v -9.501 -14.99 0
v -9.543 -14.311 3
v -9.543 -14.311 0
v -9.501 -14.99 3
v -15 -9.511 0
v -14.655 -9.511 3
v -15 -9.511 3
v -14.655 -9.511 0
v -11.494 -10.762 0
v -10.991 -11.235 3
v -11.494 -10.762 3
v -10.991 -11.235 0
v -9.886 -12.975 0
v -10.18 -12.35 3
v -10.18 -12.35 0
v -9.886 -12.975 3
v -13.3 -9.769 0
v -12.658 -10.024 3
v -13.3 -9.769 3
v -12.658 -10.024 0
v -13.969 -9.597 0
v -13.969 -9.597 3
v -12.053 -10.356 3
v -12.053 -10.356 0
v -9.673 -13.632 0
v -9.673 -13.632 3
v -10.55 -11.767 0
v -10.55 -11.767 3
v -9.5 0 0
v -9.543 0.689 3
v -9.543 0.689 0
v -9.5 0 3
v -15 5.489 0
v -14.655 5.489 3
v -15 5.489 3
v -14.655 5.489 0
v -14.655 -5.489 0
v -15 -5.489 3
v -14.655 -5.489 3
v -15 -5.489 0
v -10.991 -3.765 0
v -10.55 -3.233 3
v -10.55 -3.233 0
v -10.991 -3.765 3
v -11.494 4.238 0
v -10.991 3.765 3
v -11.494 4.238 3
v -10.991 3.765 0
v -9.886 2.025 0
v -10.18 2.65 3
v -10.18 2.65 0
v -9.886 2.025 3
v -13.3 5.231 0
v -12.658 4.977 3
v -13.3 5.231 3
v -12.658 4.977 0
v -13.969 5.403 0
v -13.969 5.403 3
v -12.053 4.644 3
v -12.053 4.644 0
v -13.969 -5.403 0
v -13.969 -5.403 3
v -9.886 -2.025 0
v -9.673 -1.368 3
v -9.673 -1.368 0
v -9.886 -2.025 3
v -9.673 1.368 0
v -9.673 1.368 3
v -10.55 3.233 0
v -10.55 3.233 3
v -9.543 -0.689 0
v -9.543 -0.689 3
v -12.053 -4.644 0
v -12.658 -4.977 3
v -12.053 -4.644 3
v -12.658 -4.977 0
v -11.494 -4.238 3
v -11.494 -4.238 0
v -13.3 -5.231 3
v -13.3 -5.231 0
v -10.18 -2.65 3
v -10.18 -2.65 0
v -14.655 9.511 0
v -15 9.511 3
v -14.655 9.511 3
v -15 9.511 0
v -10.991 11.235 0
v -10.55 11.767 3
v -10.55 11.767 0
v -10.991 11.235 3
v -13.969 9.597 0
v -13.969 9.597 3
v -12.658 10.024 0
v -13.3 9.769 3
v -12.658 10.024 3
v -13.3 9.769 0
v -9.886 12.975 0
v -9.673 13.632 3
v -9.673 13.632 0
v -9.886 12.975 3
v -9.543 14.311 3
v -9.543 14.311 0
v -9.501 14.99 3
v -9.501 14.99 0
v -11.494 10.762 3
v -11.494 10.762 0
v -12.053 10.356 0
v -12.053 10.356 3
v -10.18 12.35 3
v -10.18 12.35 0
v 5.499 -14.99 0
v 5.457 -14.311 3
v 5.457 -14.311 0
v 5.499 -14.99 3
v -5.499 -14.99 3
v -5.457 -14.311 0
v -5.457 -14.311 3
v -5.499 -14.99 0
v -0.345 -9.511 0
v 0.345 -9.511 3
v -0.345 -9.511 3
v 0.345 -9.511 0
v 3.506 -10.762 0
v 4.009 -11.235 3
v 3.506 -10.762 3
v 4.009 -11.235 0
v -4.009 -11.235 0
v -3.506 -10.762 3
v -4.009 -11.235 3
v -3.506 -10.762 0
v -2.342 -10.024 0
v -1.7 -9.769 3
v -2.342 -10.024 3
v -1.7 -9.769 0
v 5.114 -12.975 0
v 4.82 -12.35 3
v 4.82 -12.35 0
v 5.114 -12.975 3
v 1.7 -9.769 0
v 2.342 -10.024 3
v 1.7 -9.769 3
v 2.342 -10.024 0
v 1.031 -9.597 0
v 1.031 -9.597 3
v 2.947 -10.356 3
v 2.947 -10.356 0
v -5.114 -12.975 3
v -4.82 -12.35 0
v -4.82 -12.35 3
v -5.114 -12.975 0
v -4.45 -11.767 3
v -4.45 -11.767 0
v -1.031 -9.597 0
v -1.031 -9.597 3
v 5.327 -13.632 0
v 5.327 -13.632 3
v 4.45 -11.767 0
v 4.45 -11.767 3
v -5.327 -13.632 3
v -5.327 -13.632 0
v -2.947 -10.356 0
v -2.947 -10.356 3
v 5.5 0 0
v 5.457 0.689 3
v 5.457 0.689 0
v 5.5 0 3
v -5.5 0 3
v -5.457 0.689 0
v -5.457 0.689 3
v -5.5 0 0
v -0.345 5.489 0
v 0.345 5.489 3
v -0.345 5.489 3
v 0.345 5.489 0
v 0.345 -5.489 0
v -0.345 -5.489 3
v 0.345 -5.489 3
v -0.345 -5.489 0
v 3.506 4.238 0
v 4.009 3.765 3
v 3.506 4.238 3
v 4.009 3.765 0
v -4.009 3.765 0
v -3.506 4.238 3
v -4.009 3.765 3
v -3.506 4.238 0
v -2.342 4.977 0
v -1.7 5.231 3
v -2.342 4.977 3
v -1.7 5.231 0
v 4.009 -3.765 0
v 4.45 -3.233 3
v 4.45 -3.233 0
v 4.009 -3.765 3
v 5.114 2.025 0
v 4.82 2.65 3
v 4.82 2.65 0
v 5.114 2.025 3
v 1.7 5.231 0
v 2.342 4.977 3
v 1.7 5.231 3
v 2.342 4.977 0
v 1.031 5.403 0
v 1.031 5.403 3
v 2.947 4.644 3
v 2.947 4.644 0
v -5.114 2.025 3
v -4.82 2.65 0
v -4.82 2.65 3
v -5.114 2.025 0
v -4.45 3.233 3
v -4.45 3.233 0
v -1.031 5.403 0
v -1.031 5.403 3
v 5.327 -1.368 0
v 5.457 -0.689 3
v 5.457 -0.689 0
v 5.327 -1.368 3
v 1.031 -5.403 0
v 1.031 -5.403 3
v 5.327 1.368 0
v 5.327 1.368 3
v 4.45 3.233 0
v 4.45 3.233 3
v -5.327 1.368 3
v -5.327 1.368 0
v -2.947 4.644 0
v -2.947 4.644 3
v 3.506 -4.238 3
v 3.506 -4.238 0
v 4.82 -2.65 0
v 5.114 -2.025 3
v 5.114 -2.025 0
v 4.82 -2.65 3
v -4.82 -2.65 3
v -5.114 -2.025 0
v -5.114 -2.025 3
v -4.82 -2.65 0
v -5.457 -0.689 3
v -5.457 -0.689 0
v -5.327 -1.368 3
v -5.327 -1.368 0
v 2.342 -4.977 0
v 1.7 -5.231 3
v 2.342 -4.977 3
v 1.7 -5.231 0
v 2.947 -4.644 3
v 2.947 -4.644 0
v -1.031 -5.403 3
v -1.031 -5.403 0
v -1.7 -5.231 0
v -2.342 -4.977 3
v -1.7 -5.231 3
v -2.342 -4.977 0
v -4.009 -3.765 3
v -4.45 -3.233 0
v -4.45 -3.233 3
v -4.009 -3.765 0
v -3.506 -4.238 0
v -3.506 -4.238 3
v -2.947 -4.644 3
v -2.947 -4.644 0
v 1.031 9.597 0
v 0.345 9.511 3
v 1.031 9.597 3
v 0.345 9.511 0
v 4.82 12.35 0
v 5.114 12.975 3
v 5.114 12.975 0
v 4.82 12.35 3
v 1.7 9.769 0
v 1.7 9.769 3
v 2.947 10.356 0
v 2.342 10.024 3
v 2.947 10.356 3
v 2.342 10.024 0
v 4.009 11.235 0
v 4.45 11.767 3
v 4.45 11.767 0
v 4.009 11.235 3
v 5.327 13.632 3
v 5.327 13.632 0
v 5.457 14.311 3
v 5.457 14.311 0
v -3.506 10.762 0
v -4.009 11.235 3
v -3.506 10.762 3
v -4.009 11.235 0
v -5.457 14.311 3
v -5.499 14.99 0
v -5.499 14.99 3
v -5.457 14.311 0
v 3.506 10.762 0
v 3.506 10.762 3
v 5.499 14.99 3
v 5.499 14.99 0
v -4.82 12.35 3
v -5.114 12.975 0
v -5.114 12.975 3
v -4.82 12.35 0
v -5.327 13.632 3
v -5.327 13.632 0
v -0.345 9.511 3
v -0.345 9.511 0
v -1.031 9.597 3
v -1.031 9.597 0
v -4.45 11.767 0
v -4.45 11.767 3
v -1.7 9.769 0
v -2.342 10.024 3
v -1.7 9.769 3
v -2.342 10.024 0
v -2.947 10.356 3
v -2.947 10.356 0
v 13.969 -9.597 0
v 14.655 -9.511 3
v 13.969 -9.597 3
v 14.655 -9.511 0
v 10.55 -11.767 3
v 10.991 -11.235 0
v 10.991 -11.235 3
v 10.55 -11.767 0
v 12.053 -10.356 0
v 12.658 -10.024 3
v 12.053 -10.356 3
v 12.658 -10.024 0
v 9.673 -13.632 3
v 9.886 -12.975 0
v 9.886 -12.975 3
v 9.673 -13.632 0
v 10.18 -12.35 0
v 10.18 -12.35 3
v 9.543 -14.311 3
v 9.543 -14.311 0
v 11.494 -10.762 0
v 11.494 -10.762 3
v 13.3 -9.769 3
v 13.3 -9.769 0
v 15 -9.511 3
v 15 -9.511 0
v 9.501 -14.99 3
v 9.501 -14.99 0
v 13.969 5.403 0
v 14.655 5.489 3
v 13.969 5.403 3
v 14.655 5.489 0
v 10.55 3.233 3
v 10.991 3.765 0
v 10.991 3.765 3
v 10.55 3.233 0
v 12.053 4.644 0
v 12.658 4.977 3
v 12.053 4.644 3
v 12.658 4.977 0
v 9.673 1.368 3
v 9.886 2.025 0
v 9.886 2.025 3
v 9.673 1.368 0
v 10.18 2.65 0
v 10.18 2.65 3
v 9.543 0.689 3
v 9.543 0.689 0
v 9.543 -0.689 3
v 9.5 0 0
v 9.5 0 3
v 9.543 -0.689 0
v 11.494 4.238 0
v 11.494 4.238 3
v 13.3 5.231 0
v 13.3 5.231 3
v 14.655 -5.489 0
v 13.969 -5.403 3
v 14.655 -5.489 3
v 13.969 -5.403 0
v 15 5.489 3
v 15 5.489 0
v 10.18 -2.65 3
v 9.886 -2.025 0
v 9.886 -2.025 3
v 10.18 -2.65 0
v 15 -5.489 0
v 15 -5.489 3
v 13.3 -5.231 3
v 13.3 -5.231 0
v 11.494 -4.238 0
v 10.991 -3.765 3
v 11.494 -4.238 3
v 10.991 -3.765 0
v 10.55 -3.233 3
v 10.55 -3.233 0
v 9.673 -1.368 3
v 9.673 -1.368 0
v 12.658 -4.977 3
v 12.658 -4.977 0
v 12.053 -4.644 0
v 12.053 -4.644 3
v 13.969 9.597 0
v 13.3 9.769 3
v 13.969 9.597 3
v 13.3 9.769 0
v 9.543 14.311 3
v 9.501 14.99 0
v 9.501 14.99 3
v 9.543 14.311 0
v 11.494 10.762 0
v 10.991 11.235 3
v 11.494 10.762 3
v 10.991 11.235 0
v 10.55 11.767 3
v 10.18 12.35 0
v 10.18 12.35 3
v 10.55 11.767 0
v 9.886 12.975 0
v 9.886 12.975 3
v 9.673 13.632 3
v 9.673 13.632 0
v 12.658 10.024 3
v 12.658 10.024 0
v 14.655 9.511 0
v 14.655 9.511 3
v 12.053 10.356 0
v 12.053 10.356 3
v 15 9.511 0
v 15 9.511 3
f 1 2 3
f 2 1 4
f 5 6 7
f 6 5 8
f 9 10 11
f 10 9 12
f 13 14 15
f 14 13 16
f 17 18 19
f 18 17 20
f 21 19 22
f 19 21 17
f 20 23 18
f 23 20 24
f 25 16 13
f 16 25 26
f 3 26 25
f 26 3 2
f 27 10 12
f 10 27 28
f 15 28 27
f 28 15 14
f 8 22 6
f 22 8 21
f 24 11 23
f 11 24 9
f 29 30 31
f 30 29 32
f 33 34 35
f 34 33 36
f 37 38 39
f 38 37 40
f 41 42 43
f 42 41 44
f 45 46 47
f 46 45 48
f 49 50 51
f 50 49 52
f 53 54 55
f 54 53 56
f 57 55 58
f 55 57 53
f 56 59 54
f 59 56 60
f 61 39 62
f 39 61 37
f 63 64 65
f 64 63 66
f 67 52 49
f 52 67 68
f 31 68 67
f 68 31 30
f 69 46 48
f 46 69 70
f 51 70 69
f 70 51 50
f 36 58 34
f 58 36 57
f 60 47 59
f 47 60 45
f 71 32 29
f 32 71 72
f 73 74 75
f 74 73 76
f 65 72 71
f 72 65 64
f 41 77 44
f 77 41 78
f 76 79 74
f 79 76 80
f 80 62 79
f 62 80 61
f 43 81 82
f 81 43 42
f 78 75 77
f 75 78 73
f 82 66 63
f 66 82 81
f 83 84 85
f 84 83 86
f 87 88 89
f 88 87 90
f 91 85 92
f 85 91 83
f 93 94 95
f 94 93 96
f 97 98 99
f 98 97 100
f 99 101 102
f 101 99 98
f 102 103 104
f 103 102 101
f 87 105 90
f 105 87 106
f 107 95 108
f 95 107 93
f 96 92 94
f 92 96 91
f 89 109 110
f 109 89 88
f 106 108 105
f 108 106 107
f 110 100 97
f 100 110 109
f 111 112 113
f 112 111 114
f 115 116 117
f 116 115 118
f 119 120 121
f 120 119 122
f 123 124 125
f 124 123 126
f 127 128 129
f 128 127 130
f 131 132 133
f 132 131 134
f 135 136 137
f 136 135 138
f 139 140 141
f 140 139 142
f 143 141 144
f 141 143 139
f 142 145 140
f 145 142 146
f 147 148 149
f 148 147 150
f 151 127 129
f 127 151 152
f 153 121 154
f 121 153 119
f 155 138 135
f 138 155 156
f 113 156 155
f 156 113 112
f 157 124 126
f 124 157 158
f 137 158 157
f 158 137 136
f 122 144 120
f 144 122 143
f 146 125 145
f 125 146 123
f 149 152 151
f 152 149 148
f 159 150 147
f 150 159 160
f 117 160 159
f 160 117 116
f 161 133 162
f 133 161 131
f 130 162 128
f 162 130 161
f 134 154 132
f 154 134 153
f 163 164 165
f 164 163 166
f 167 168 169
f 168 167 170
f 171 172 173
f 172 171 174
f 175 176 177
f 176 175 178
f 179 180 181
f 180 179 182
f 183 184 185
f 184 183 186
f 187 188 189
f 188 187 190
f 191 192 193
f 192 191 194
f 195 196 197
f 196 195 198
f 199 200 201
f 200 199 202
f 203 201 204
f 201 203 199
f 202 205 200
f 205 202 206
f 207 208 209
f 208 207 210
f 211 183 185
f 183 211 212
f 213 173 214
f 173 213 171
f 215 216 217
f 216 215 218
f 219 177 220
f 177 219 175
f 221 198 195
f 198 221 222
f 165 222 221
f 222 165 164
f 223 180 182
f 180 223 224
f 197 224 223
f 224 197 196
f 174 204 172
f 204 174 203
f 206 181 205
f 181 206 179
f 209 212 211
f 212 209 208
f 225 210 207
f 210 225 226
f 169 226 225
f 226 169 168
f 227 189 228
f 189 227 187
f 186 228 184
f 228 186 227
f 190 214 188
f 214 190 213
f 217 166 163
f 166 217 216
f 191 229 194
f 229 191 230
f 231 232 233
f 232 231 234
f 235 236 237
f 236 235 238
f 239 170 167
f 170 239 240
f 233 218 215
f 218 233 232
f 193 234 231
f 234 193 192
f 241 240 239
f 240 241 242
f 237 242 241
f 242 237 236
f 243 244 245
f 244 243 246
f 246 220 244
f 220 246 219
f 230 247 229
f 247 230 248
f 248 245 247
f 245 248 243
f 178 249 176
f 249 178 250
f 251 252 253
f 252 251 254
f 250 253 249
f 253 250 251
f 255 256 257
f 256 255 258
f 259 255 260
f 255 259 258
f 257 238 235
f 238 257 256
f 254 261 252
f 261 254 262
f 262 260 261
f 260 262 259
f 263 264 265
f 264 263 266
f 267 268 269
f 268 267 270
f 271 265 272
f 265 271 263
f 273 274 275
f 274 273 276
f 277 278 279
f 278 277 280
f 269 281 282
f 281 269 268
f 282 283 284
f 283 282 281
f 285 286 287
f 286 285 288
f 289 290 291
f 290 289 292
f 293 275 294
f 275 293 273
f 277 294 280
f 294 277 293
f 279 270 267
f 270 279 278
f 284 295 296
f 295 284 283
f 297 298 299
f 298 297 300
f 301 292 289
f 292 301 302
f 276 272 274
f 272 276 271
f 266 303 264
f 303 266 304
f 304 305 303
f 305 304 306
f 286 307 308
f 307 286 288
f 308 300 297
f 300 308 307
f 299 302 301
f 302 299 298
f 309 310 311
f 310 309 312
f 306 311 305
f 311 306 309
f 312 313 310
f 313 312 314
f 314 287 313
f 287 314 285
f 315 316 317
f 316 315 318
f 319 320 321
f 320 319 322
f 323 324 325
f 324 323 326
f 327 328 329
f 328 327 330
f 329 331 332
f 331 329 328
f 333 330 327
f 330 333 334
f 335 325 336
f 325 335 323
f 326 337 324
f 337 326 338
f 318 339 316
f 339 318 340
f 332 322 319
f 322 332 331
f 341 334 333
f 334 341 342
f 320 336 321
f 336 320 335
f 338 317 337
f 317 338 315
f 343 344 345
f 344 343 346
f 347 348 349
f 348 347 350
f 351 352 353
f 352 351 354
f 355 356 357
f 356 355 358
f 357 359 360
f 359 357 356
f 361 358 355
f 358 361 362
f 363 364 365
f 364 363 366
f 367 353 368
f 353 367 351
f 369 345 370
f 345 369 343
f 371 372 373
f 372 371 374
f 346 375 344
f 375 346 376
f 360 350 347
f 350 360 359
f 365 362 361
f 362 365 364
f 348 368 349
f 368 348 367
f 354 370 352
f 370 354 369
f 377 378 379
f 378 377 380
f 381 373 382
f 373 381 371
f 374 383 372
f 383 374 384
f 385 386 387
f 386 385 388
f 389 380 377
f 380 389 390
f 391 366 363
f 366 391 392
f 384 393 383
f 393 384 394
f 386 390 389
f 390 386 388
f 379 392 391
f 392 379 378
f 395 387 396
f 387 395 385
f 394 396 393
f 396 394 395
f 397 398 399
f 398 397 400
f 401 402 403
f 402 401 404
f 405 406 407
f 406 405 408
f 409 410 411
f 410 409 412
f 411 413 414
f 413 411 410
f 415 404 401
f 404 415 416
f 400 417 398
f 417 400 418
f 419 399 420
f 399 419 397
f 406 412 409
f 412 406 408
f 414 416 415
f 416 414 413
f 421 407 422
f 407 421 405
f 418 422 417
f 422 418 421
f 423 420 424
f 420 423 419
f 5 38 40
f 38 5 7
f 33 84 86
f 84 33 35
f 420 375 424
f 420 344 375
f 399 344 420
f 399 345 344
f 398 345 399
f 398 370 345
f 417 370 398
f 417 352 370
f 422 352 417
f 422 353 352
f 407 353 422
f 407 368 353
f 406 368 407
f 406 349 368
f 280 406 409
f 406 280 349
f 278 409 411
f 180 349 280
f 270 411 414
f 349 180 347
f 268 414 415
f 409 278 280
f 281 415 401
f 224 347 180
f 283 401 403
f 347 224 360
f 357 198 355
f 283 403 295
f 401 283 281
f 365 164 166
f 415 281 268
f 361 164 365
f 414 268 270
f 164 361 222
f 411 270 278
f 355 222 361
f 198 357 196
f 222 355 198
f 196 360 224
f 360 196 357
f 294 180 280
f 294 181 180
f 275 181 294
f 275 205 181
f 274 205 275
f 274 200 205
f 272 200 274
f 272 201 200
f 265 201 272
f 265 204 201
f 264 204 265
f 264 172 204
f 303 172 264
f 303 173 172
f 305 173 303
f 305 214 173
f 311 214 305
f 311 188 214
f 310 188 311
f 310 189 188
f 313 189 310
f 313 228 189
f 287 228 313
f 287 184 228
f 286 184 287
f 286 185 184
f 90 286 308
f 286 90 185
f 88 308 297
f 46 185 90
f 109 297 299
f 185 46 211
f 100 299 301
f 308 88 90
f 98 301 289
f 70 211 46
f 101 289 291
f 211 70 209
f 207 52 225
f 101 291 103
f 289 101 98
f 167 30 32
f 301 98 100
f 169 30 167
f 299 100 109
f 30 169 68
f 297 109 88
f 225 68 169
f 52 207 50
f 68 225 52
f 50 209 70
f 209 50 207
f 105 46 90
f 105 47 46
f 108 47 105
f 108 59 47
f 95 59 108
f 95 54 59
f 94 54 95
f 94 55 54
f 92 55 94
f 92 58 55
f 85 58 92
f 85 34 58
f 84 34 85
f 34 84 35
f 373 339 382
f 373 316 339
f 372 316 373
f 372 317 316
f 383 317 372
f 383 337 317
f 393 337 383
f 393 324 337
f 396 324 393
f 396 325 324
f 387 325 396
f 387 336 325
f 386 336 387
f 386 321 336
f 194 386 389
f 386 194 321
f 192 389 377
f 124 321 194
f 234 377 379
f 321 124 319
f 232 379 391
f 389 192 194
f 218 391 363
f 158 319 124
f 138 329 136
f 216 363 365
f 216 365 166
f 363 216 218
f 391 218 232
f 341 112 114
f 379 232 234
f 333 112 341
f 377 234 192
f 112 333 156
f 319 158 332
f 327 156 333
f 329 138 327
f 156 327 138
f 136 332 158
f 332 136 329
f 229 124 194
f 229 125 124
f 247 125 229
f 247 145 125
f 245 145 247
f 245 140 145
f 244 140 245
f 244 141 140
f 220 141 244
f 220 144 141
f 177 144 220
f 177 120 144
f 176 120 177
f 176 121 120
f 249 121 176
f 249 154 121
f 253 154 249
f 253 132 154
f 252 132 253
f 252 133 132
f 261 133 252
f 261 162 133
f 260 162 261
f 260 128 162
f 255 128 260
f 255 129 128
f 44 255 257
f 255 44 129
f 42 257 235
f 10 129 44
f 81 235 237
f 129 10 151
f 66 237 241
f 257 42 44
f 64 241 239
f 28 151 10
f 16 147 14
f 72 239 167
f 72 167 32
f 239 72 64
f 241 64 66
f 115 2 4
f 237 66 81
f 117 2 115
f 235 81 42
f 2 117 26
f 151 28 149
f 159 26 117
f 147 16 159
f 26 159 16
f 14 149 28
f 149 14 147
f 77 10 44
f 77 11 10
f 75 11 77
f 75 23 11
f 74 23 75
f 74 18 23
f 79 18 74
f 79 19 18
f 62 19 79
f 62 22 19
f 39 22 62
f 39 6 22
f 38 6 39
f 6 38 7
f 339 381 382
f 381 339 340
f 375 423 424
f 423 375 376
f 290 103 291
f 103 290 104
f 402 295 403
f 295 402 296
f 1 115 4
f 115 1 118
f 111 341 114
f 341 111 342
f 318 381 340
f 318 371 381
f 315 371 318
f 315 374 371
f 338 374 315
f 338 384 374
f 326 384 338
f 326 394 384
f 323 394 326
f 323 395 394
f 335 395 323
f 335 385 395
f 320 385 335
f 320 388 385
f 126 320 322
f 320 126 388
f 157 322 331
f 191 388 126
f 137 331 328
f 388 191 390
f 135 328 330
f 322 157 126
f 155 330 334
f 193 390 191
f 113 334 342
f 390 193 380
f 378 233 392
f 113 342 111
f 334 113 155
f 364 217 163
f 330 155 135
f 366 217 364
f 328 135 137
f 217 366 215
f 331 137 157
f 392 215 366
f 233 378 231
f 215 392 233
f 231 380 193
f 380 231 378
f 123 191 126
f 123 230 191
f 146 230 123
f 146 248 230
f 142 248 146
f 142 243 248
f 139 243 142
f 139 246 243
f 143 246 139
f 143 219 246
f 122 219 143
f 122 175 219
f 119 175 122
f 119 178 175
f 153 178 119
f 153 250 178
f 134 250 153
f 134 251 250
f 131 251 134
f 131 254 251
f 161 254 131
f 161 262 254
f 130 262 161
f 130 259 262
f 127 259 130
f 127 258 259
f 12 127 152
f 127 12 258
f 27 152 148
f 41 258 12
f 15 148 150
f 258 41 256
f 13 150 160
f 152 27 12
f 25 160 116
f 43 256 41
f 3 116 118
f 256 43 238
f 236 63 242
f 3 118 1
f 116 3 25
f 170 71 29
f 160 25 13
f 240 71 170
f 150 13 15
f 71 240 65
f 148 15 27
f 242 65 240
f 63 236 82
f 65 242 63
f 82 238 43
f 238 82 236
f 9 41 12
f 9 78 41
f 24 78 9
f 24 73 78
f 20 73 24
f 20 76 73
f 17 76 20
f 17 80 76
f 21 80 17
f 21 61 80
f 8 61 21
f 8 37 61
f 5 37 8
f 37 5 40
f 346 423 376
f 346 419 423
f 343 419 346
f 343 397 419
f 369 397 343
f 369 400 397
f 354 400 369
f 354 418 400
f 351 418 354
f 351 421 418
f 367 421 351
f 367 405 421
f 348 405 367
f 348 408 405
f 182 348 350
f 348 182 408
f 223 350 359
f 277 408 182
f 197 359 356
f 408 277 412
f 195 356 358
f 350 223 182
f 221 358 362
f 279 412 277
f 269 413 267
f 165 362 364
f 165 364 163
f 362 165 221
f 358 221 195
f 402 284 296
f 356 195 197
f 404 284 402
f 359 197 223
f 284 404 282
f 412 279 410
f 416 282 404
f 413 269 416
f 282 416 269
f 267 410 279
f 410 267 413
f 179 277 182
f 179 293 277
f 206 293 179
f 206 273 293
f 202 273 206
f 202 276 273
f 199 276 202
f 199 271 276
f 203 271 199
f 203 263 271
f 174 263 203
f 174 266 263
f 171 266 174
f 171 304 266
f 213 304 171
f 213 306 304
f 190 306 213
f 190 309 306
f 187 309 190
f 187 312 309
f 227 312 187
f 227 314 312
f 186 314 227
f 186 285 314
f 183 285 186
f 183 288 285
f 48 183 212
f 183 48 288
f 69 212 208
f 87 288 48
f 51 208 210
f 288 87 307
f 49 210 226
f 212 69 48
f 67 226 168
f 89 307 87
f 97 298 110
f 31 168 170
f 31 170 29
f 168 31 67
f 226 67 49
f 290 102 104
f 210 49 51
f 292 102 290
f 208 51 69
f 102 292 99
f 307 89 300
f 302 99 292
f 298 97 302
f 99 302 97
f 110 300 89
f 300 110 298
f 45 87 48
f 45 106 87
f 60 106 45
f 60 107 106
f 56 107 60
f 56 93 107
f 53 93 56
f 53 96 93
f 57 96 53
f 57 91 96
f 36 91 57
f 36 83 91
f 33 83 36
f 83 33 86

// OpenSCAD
$fn = 50;


difference() {
	union() {
		hull() {
			translate(v = [-10.0000000000, 10.0000000000, 0]) {
				cylinder(h = 3, r = 5);
			}
			translate(v = [10.0000000000, 10.0000000000, 0]) {
				cylinder(h = 3, r = 5);
			}
			translate(v = [-10.0000000000, -10.0000000000, 0]) {
				cylinder(h = 3, r = 5);
			}
			translate(v = [10.0000000000, -10.0000000000, 0]) {
				cylinder(h = 3, r = 5);
			}
		}
	}
	union() {
		translate(v = [-15.0000000000, -15.0000000000, 0]) {
			translate(v = [0, 0, -100]) {
				cylinder(h = 200, r = 5.5000000000);
			}
		}
		translate(v = [-15.0000000000, 0.0000000000, 0]) {
			translate(v = [0, 0, -100]) {
				cylinder(h = 200, r = 5.5000000000);
			}
		}
		translate(v = [-15.0000000000, 15.0000000000, 0]) {
			translate(v = [0, 0, -100]) {
				cylinder(h = 200, r = 5.5000000000);
			}
		}
		translate(v = [0.0000000000, -15.0000000000, 0]) {
			translate(v = [0, 0, -100]) {
				cylinder(h = 200, r = 5.5000000000);
			}
		}
		translate(v = [0, 0, -100]) {
			cylinder(h = 200, r = 5.5000000000);
		}
		translate(v = [0.0000000000, 15.0000000000, 0]) {
			translate(v = [0, 0, -100]) {
				cylinder(h = 200, r = 5.5000000000);
			}
		}
		translate(v = [15.0000000000, -15.0000000000, 0]) {
			translate(v = [0, 0, -100]) {
				cylinder(h = 200, r = 5.5000000000);
			}
		}
		translate(v = [15.0000000000, 0.0000000000, 0]) {
			translate(v = [0, 0, -100]) {
				cylinder(h = 200, r = 5.5000000000);
			}
		}
		translate(v = [15.0000000000, 15.0000000000, 0]) {
			translate(v = [0, 0, -100]) {
				cylinder(h = 200, r = 5.5000000000);
			}
		}
	}
}
